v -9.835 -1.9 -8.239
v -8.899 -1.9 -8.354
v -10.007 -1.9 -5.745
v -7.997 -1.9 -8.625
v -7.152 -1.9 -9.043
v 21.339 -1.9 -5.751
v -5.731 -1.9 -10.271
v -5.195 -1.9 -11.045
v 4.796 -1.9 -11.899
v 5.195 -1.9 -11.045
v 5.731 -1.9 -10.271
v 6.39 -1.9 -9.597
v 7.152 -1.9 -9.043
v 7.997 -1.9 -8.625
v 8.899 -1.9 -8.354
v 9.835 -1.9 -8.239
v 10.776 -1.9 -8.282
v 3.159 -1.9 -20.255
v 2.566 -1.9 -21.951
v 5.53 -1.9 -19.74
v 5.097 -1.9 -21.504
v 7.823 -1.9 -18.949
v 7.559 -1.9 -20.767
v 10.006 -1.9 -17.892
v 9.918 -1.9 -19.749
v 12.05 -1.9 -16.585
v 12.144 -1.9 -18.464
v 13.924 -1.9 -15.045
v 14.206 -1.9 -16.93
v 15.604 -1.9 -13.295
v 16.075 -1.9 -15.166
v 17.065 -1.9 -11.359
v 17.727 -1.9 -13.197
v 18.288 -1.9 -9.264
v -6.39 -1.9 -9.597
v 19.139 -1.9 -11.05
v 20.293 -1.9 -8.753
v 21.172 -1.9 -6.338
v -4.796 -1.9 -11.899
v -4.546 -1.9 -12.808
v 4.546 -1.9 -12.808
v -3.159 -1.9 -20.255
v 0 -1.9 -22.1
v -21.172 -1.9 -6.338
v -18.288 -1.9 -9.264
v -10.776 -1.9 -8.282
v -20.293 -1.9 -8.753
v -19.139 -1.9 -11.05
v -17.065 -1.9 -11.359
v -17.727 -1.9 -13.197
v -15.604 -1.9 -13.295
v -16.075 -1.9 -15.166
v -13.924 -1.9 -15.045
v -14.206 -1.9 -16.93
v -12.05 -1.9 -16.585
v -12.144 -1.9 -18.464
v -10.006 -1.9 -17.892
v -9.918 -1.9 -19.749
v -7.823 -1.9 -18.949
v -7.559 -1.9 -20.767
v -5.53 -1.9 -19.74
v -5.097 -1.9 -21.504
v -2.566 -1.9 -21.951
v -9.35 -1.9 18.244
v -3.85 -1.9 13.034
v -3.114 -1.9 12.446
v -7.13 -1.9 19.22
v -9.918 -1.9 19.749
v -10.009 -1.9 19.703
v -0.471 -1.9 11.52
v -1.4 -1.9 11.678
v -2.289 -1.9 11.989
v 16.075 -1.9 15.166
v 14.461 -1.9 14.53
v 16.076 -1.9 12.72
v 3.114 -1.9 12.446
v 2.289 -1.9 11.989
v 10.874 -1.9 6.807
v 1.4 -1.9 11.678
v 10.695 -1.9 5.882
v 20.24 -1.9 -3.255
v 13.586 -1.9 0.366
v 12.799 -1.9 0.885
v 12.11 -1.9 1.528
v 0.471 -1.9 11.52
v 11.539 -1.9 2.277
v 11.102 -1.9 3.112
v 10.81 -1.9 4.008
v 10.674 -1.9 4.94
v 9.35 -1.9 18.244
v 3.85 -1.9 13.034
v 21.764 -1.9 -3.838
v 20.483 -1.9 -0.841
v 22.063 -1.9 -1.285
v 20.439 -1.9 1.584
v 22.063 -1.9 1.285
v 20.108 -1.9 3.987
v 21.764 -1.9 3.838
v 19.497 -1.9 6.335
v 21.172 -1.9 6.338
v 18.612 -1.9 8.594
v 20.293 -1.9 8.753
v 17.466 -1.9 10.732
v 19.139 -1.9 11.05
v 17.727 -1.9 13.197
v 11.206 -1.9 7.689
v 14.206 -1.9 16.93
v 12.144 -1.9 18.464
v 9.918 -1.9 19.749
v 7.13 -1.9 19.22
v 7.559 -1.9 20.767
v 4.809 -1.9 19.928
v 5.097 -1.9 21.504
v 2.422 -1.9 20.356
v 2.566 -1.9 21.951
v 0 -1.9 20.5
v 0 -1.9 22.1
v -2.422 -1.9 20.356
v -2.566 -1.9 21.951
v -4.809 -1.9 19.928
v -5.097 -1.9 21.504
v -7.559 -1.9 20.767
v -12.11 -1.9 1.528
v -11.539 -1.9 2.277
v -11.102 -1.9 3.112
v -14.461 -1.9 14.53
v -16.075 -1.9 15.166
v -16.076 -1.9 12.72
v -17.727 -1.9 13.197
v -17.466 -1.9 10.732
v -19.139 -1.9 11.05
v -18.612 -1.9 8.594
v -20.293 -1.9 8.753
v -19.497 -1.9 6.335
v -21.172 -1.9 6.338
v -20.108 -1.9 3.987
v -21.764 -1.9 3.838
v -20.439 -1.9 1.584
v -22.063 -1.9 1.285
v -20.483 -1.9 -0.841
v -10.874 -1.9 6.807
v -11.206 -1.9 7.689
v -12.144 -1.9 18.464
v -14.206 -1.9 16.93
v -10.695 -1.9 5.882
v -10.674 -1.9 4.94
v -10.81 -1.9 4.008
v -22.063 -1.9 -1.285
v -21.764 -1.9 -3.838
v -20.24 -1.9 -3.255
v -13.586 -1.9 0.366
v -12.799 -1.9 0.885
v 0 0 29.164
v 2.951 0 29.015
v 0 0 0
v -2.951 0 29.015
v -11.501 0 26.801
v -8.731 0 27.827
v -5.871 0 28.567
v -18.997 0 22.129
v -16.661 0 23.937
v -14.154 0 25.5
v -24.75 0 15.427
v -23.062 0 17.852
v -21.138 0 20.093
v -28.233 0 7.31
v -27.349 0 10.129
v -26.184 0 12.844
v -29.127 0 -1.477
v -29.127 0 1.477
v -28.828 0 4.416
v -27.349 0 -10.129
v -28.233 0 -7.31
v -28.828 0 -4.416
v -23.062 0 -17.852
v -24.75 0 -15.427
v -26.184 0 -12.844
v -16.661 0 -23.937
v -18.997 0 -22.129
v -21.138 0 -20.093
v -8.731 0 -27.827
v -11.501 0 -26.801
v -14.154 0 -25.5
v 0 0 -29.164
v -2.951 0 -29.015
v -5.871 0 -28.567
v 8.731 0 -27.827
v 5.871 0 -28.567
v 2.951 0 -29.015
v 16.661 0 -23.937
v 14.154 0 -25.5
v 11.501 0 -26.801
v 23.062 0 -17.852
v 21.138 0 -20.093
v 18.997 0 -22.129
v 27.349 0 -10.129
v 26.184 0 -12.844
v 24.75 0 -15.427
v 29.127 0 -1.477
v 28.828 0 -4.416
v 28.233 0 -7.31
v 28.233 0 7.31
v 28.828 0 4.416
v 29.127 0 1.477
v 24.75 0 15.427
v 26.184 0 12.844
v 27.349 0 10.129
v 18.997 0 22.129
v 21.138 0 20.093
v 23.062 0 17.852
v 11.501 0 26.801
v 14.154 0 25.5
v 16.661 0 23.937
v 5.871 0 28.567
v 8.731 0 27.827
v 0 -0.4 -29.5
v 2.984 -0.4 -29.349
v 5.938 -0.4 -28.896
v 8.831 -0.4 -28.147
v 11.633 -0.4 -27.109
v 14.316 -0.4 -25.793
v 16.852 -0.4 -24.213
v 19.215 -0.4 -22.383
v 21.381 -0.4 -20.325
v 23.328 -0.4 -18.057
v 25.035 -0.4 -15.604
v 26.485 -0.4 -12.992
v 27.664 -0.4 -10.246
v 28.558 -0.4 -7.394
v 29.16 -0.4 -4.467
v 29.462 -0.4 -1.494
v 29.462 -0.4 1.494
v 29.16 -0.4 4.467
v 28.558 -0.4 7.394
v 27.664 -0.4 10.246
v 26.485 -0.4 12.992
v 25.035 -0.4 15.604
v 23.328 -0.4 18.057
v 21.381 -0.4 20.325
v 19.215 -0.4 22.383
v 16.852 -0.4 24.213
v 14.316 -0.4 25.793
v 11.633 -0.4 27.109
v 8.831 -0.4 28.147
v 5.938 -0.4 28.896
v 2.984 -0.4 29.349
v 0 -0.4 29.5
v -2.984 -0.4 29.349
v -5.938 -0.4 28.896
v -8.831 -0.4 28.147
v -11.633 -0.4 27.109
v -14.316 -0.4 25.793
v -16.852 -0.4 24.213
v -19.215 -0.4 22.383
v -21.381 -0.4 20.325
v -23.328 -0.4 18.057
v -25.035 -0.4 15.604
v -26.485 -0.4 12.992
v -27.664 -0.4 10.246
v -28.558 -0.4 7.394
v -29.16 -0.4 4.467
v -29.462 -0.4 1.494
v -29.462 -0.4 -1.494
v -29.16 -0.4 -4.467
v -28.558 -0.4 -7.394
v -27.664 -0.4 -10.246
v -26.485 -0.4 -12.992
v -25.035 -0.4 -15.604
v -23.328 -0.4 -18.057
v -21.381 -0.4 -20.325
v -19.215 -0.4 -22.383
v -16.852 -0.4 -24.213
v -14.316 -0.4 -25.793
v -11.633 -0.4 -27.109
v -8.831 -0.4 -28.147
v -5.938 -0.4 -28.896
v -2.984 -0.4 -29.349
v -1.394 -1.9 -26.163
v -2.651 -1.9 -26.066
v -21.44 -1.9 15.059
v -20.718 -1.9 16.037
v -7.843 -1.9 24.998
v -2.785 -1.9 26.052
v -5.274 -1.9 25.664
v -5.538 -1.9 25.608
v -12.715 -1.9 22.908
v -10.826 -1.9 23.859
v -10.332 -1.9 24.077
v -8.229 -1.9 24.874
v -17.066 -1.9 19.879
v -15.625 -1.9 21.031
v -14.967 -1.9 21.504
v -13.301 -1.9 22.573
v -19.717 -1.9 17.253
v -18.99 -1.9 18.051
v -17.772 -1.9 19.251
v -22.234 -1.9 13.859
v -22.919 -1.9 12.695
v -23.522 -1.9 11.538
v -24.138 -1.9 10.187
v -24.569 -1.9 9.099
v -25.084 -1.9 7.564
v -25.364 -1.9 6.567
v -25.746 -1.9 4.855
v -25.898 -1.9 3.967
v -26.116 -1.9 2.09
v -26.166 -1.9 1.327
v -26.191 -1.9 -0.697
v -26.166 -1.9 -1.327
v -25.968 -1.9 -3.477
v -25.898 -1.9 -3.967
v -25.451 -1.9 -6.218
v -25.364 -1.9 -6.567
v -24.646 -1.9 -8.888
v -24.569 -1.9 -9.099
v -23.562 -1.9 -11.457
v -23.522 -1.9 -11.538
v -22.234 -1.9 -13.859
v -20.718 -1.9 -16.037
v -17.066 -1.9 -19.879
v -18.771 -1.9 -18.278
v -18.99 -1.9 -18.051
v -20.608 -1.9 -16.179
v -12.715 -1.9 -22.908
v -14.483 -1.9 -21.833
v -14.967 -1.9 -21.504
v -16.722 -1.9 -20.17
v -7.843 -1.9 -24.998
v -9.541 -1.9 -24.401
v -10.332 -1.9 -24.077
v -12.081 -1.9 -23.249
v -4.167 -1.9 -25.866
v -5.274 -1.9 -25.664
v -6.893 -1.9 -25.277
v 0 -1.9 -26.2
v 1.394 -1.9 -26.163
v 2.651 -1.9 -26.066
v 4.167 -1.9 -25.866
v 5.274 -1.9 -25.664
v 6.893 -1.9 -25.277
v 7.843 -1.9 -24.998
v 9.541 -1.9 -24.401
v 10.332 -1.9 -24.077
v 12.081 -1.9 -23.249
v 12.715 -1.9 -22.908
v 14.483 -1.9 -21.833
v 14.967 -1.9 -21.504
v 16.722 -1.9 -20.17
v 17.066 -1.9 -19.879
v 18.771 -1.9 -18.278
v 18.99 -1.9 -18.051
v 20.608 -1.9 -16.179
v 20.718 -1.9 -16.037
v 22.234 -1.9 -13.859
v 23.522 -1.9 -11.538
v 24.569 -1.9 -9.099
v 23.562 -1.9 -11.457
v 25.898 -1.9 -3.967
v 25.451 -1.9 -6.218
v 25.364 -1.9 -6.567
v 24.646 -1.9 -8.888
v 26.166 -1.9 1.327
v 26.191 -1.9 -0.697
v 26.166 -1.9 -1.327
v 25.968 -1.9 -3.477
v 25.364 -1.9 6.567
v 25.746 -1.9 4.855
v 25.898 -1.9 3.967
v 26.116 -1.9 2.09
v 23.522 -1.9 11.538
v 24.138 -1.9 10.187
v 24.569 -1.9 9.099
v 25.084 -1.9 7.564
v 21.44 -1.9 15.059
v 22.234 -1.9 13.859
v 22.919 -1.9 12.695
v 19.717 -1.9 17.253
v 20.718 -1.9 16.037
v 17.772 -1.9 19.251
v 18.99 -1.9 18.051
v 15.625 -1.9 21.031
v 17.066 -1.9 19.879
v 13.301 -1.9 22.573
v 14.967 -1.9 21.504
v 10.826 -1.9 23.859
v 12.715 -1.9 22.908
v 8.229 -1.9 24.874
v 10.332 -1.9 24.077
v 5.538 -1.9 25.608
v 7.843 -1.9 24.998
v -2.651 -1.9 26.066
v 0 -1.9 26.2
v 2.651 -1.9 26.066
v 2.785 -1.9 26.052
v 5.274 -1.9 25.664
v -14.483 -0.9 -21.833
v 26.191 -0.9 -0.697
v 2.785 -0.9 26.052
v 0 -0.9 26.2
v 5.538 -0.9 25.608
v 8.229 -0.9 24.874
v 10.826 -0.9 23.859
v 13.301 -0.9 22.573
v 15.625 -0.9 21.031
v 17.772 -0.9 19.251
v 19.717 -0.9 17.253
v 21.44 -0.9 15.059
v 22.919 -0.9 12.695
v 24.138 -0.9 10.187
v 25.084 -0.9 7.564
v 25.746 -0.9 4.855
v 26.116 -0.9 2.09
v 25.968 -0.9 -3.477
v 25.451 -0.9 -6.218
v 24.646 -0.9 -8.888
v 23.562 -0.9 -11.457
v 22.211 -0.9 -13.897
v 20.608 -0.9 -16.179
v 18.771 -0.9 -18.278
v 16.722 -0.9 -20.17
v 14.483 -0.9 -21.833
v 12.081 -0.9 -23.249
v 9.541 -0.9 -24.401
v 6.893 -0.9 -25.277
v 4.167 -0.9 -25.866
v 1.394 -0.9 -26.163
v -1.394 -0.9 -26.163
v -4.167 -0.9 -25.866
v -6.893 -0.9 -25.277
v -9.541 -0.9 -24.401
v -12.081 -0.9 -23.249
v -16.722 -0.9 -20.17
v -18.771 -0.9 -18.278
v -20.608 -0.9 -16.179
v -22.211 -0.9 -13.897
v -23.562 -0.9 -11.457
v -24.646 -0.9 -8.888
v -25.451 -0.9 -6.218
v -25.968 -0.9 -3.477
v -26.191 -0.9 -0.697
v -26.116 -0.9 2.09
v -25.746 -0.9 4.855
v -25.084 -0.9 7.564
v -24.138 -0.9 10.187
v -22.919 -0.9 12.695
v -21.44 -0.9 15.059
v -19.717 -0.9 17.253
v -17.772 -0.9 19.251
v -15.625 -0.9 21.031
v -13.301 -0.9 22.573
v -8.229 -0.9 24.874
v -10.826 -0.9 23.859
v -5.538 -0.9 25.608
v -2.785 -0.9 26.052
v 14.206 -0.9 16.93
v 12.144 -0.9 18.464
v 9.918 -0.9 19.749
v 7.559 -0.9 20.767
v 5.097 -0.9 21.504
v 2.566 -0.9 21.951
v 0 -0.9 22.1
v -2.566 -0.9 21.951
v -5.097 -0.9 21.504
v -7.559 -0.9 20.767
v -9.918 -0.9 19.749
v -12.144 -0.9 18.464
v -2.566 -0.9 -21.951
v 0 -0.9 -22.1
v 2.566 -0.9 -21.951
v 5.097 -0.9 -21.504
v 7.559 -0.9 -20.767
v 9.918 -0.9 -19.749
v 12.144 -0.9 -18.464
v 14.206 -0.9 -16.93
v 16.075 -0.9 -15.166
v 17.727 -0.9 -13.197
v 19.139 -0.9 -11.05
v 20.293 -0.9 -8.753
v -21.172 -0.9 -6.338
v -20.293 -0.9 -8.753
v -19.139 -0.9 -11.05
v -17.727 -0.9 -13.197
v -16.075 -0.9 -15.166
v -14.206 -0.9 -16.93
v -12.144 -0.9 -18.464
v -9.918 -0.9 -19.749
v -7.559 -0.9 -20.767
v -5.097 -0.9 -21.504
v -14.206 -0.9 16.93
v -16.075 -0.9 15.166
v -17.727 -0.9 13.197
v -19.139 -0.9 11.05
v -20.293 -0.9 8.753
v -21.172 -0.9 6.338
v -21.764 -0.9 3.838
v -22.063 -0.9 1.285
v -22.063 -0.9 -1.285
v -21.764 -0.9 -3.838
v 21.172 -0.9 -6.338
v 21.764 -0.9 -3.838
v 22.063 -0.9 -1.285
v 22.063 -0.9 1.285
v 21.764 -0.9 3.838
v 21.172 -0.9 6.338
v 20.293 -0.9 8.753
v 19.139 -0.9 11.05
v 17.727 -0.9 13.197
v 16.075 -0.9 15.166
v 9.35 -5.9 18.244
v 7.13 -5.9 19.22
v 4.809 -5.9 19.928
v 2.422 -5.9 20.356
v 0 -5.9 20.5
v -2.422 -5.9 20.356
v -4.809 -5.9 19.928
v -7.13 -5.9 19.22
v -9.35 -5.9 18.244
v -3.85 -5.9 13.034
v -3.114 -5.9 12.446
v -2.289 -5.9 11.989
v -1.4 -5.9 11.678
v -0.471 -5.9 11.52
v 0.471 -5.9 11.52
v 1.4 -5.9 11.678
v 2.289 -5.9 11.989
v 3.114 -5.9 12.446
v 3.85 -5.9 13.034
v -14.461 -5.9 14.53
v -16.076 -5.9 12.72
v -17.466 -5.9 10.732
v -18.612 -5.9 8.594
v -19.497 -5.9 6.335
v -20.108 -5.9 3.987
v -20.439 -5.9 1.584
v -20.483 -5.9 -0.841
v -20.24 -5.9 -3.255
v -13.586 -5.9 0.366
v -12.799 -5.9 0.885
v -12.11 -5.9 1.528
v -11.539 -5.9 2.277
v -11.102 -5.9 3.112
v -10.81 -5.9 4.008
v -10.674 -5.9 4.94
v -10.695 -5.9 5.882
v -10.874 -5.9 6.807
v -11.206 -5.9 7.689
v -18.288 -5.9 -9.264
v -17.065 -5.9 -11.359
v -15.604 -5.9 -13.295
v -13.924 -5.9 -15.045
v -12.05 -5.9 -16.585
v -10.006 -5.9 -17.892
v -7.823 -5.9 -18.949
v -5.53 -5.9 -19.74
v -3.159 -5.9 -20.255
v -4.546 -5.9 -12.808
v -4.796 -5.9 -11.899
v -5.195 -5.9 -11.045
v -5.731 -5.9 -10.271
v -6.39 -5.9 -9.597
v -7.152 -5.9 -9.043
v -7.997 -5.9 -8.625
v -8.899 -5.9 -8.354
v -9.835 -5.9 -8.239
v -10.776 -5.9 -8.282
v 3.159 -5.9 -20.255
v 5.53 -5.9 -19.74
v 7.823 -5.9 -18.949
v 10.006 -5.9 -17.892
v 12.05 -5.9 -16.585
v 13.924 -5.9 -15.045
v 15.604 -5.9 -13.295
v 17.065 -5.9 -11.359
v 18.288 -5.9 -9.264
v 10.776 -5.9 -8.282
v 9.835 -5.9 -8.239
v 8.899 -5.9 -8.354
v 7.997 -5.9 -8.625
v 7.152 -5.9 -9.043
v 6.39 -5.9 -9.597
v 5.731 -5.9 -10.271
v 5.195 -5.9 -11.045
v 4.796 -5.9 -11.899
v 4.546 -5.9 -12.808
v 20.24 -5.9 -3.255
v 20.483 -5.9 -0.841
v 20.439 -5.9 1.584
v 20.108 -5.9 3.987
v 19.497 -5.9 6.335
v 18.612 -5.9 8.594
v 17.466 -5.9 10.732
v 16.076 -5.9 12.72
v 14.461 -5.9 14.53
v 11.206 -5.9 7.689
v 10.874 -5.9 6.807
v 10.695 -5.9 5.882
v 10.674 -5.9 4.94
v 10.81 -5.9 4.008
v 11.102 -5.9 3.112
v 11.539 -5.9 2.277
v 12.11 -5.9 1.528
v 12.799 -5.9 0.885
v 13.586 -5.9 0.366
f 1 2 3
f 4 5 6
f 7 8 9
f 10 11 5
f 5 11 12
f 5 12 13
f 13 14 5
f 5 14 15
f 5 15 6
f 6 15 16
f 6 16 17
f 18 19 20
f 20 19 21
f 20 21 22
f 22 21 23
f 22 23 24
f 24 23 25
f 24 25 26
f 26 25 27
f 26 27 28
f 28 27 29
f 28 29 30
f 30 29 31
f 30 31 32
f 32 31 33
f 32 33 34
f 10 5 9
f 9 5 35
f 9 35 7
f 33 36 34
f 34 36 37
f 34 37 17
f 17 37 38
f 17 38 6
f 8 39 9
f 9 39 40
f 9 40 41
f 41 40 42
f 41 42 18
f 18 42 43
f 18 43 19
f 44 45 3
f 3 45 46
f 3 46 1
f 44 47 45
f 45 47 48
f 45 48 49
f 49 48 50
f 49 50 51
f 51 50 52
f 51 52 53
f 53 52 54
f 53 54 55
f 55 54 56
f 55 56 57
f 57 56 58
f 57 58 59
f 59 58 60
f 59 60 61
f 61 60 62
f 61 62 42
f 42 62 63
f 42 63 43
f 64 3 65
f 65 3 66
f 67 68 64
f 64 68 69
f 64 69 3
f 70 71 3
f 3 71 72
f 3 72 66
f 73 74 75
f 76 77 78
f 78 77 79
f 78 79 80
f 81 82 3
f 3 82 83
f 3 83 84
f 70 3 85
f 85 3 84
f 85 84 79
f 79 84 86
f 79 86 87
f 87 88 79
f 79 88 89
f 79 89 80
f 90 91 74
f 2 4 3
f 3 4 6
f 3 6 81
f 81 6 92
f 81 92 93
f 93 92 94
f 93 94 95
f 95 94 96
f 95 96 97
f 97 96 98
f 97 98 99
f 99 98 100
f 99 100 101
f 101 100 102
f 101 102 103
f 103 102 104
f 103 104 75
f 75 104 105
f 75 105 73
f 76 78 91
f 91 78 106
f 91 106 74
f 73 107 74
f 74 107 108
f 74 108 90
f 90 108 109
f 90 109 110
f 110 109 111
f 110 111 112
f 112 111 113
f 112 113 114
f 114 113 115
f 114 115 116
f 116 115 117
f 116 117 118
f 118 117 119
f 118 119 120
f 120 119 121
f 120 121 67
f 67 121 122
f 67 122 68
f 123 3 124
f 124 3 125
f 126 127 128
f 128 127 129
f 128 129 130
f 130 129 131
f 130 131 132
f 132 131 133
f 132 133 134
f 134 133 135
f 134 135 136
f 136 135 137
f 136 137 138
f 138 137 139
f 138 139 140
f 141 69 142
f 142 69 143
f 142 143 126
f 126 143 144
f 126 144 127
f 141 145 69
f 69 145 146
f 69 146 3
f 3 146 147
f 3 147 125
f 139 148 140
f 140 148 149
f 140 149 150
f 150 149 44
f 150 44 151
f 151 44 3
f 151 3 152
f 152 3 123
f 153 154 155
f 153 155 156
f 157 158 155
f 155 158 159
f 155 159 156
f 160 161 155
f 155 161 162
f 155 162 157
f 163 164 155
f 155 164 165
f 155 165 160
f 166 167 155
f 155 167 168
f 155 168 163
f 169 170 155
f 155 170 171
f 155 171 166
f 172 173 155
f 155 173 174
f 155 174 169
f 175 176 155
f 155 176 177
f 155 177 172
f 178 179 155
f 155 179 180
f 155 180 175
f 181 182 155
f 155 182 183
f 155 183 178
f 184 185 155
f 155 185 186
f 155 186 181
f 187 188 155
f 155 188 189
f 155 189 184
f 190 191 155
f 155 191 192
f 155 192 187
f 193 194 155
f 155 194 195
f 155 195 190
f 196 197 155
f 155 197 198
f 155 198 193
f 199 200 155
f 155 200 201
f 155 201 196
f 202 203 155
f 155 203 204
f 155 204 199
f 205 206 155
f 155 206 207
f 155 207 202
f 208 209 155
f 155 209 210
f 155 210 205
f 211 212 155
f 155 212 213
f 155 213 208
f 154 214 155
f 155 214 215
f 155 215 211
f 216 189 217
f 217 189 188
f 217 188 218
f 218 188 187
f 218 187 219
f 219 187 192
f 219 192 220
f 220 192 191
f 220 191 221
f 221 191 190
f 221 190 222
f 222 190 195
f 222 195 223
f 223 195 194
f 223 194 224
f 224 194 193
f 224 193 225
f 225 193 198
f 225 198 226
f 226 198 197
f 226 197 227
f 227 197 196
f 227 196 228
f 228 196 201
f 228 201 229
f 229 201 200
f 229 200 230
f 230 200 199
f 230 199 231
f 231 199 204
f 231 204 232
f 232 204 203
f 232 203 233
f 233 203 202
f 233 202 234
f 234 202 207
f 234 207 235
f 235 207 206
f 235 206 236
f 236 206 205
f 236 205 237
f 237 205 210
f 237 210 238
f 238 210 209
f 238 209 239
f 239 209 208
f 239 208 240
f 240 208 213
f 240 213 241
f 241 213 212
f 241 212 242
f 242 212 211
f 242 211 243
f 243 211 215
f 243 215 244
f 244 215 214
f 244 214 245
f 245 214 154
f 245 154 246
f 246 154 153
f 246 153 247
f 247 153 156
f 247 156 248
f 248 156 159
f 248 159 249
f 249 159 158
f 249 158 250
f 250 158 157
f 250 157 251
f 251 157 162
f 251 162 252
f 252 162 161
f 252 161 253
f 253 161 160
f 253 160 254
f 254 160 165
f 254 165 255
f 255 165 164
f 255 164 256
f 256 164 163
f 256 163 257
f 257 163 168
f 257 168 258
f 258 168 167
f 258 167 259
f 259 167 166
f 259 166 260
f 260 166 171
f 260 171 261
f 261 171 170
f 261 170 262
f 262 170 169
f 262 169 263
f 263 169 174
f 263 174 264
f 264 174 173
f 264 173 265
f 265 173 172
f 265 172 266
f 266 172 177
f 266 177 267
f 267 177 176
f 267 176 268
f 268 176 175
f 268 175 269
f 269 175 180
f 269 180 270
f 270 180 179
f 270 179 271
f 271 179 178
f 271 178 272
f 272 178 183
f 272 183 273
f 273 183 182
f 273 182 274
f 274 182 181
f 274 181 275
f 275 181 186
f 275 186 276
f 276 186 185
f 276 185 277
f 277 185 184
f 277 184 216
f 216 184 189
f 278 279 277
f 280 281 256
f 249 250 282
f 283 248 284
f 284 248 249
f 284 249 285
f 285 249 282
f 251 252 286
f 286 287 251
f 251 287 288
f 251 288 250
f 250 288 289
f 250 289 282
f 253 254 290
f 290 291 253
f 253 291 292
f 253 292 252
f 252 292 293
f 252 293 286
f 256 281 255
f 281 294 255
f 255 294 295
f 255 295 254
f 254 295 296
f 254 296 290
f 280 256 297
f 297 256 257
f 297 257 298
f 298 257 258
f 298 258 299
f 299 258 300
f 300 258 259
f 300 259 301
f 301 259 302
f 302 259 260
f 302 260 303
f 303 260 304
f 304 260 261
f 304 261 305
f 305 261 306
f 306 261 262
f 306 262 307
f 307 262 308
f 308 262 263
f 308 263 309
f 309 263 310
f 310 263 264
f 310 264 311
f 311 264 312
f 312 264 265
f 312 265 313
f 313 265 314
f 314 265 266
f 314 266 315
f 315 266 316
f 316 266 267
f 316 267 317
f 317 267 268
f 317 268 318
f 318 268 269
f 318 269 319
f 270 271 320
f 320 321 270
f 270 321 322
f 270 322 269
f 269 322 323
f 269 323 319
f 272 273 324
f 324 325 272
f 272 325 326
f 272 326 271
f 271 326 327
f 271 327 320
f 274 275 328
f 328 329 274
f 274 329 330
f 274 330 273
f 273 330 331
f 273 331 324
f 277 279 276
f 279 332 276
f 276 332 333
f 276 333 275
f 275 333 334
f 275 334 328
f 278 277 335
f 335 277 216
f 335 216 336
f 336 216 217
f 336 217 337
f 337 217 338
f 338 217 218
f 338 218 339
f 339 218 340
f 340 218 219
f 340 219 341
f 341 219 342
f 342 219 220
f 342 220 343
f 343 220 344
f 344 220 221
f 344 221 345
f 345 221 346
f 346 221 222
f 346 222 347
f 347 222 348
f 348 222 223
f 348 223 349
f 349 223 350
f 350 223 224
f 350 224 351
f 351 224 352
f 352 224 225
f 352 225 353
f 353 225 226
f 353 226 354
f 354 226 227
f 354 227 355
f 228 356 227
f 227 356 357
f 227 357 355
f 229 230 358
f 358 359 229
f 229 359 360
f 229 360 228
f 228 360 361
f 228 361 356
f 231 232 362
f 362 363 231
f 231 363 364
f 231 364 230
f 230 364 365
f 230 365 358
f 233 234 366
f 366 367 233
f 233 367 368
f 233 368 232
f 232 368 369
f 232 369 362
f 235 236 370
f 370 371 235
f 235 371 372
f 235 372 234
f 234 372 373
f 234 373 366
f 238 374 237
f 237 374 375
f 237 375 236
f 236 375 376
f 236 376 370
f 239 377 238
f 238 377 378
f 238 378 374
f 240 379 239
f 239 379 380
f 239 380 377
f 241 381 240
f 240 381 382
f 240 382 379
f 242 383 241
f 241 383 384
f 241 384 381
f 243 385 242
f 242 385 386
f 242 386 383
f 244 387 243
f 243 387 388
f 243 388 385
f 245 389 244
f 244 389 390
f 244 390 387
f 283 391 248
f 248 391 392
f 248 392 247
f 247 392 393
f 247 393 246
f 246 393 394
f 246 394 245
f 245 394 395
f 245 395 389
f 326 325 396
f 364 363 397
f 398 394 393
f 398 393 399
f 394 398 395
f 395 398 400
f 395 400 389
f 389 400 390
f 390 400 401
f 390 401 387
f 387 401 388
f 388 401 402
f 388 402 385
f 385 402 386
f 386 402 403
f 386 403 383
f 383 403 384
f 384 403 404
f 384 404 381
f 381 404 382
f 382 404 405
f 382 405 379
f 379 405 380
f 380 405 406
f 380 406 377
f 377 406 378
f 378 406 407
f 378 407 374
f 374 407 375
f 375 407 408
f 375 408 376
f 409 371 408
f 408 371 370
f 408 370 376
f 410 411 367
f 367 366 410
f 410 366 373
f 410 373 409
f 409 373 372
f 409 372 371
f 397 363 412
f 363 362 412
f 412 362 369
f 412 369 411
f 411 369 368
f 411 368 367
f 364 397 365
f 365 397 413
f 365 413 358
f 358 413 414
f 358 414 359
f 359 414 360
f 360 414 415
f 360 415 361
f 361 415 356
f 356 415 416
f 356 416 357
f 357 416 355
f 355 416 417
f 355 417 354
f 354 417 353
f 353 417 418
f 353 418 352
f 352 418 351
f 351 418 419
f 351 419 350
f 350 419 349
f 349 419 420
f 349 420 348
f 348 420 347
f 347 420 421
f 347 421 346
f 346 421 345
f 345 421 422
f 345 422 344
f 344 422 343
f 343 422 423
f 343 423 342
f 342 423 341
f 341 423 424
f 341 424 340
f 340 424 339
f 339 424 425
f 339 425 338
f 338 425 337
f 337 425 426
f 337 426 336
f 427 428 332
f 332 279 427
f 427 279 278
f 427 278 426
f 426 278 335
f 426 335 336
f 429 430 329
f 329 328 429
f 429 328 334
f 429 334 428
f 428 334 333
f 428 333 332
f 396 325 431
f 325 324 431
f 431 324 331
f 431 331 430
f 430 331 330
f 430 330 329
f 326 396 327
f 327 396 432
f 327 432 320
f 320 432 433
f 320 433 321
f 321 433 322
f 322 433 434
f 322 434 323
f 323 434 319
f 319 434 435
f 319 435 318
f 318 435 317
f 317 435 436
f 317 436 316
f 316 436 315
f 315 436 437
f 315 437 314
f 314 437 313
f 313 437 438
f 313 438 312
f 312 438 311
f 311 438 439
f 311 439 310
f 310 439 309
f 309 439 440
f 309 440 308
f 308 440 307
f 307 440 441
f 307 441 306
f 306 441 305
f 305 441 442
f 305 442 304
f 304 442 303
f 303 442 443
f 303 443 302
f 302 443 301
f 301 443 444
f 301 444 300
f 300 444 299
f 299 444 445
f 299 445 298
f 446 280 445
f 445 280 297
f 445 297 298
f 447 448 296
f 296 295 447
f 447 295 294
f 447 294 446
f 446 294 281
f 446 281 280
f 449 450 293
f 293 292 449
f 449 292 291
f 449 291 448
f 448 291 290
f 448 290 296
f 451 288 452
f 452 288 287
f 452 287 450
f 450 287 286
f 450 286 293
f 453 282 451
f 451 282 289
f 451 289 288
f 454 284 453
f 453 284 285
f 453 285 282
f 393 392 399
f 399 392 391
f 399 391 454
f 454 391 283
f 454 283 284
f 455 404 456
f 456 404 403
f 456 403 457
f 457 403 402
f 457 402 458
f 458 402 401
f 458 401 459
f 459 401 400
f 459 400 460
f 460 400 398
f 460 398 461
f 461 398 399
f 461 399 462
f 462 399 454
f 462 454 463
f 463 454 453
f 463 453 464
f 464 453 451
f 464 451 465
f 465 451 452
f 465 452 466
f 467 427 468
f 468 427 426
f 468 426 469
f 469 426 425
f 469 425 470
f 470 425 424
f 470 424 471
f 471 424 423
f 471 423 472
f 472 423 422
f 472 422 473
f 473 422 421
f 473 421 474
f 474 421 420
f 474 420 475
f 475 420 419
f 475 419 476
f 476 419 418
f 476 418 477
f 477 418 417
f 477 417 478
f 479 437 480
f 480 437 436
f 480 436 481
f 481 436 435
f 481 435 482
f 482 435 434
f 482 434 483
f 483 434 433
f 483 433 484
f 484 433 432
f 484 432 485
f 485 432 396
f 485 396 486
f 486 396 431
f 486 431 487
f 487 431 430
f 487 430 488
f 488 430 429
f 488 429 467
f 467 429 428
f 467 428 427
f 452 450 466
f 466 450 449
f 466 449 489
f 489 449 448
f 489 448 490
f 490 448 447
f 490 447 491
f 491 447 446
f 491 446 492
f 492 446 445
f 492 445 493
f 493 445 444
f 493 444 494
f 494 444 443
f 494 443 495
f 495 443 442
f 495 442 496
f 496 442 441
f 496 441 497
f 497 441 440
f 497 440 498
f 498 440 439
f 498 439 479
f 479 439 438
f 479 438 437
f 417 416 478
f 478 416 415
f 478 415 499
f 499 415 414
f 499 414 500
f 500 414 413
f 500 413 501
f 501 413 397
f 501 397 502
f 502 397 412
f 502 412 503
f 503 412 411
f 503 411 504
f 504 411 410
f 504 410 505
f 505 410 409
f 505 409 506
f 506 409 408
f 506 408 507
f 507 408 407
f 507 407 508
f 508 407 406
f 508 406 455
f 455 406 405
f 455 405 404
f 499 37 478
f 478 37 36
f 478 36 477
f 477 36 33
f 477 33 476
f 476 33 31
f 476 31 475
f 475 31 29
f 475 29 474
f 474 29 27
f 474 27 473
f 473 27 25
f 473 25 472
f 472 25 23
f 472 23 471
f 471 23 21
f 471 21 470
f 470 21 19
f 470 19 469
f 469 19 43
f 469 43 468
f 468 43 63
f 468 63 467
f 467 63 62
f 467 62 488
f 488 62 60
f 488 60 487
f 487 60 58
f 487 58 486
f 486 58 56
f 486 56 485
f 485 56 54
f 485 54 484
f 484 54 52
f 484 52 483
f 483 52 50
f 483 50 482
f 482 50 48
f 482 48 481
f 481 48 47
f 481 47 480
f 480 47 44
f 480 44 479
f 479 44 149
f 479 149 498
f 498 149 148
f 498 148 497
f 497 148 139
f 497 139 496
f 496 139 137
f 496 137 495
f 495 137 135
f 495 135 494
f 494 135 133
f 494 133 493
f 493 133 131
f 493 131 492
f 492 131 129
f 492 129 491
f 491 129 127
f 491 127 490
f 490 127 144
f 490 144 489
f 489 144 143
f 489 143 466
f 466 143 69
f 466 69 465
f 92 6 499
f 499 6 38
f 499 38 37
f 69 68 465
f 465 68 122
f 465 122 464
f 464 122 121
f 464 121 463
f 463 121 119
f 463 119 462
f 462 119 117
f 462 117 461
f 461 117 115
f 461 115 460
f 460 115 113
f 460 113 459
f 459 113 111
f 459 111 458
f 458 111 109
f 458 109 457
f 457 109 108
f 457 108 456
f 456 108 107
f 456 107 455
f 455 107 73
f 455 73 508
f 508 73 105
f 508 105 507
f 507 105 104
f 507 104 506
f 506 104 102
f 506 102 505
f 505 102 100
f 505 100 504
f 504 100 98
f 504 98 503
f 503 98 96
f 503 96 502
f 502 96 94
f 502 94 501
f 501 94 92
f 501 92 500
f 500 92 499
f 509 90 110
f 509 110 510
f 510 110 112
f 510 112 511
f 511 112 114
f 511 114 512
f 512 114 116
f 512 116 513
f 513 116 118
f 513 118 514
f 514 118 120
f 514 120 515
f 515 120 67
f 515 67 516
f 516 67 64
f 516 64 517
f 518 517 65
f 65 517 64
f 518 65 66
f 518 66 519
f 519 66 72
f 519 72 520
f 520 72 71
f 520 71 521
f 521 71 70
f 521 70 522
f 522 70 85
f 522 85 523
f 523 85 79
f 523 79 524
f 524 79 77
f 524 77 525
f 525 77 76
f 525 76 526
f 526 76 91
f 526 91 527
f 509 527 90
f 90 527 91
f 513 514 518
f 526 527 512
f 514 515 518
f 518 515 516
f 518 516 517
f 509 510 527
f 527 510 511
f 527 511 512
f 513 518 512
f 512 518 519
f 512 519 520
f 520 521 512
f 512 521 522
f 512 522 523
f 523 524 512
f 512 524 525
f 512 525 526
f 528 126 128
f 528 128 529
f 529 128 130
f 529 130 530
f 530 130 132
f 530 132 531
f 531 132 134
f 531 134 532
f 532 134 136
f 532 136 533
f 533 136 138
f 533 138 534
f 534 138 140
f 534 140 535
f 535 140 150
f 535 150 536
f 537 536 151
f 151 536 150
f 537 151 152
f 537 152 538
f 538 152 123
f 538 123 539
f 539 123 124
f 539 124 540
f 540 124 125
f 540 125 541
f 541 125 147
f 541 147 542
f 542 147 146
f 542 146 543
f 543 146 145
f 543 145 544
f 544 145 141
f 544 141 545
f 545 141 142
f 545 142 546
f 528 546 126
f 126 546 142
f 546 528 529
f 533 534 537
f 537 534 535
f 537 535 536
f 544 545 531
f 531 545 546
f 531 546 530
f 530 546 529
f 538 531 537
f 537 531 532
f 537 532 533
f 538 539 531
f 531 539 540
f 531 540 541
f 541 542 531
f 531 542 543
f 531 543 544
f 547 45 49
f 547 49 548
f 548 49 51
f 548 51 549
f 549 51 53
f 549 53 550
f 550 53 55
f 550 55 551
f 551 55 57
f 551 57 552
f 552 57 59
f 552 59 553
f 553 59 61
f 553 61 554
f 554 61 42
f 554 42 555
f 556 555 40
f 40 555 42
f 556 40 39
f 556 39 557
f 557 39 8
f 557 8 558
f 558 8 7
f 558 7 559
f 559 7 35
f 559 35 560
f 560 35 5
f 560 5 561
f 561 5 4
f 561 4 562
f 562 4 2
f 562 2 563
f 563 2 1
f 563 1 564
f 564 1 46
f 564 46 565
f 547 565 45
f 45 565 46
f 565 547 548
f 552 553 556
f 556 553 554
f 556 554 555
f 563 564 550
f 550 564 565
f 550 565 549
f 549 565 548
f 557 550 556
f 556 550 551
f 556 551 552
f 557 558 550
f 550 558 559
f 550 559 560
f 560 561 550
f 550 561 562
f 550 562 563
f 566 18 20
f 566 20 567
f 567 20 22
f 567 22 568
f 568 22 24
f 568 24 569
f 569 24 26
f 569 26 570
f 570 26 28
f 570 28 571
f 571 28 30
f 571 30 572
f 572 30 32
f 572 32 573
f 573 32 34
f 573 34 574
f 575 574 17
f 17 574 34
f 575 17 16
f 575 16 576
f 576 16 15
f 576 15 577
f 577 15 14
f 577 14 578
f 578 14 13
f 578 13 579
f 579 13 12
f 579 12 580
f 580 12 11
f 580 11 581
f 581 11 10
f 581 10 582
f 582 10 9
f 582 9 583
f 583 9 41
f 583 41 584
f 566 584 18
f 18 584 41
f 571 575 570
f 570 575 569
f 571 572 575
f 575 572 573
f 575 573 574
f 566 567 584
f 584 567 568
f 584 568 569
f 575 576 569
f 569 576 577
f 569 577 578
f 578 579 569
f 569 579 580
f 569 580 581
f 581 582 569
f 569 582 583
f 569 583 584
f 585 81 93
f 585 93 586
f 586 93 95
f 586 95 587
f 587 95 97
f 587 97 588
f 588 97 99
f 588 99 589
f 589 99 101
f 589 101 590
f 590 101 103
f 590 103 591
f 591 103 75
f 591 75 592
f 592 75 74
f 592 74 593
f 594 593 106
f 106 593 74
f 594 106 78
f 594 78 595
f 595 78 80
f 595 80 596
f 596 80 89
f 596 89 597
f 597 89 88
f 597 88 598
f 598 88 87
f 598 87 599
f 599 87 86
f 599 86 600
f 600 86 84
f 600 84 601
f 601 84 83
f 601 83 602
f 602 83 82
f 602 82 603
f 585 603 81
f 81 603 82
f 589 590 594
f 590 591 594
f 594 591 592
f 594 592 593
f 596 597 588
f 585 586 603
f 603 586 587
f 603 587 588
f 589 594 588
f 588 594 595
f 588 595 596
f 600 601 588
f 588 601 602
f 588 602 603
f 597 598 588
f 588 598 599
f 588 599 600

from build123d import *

# Parameters (mm, degrees)
BOSS_EXTRUDE1_DEPTH = 4
CIRPATTERN1_COUNT   = 5


with BuildPart() as part:
    # Sketch1 → Revolve1 (revolve)
    with BuildSketch(Plane(origin=(0, 0, 0), x_dir=(0, 0, -1), z_dir=(1, 0, 0))):
        Polygon((0, 0), (29.164360148, 0), (29.5, -0.4), (26.2, -1.9), (26.2, -0.9), (22.1, -0.9), (22.1, -1.9), (0, -1.9), align=None)
    revolve(axis=Axis((0, 64.33779776, 0), (0, -1, 0)))

    # Sketch2 → Boss-Extrude1 (add)
    with BuildSketch(Plane.XZ.offset(1.9)):
        with BuildLine():
            Line((9.35, 18.243560508), (3.85, 13.033927997))
            ThreePointArc((3.85, 13.033927997), (0, 11.5), (-3.85, 13.033927997))
            Line((-3.85, 13.033927997), (-9.35, 18.243560508))
            ThreePointArc((-9.35, 18.243560508), (0, 20.5), (9.35, 18.243560508))
        make_face()
    boss_extrude1 = extrude(amount=BOSS_EXTRUDE1_DEPTH)

    # CirPattern1: Boss-Extrude1 ×5 about axis
    cirpattern1_axis = Axis((0, 64.33779776, 0), (0, -1, 0))
    for i in range(1, CIRPATTERN1_COUNT):
        add(boss_extrude1.rotate(cirpattern1_axis, i * 360 / CIRPATTERN1_COUNT))


solid = part.part
